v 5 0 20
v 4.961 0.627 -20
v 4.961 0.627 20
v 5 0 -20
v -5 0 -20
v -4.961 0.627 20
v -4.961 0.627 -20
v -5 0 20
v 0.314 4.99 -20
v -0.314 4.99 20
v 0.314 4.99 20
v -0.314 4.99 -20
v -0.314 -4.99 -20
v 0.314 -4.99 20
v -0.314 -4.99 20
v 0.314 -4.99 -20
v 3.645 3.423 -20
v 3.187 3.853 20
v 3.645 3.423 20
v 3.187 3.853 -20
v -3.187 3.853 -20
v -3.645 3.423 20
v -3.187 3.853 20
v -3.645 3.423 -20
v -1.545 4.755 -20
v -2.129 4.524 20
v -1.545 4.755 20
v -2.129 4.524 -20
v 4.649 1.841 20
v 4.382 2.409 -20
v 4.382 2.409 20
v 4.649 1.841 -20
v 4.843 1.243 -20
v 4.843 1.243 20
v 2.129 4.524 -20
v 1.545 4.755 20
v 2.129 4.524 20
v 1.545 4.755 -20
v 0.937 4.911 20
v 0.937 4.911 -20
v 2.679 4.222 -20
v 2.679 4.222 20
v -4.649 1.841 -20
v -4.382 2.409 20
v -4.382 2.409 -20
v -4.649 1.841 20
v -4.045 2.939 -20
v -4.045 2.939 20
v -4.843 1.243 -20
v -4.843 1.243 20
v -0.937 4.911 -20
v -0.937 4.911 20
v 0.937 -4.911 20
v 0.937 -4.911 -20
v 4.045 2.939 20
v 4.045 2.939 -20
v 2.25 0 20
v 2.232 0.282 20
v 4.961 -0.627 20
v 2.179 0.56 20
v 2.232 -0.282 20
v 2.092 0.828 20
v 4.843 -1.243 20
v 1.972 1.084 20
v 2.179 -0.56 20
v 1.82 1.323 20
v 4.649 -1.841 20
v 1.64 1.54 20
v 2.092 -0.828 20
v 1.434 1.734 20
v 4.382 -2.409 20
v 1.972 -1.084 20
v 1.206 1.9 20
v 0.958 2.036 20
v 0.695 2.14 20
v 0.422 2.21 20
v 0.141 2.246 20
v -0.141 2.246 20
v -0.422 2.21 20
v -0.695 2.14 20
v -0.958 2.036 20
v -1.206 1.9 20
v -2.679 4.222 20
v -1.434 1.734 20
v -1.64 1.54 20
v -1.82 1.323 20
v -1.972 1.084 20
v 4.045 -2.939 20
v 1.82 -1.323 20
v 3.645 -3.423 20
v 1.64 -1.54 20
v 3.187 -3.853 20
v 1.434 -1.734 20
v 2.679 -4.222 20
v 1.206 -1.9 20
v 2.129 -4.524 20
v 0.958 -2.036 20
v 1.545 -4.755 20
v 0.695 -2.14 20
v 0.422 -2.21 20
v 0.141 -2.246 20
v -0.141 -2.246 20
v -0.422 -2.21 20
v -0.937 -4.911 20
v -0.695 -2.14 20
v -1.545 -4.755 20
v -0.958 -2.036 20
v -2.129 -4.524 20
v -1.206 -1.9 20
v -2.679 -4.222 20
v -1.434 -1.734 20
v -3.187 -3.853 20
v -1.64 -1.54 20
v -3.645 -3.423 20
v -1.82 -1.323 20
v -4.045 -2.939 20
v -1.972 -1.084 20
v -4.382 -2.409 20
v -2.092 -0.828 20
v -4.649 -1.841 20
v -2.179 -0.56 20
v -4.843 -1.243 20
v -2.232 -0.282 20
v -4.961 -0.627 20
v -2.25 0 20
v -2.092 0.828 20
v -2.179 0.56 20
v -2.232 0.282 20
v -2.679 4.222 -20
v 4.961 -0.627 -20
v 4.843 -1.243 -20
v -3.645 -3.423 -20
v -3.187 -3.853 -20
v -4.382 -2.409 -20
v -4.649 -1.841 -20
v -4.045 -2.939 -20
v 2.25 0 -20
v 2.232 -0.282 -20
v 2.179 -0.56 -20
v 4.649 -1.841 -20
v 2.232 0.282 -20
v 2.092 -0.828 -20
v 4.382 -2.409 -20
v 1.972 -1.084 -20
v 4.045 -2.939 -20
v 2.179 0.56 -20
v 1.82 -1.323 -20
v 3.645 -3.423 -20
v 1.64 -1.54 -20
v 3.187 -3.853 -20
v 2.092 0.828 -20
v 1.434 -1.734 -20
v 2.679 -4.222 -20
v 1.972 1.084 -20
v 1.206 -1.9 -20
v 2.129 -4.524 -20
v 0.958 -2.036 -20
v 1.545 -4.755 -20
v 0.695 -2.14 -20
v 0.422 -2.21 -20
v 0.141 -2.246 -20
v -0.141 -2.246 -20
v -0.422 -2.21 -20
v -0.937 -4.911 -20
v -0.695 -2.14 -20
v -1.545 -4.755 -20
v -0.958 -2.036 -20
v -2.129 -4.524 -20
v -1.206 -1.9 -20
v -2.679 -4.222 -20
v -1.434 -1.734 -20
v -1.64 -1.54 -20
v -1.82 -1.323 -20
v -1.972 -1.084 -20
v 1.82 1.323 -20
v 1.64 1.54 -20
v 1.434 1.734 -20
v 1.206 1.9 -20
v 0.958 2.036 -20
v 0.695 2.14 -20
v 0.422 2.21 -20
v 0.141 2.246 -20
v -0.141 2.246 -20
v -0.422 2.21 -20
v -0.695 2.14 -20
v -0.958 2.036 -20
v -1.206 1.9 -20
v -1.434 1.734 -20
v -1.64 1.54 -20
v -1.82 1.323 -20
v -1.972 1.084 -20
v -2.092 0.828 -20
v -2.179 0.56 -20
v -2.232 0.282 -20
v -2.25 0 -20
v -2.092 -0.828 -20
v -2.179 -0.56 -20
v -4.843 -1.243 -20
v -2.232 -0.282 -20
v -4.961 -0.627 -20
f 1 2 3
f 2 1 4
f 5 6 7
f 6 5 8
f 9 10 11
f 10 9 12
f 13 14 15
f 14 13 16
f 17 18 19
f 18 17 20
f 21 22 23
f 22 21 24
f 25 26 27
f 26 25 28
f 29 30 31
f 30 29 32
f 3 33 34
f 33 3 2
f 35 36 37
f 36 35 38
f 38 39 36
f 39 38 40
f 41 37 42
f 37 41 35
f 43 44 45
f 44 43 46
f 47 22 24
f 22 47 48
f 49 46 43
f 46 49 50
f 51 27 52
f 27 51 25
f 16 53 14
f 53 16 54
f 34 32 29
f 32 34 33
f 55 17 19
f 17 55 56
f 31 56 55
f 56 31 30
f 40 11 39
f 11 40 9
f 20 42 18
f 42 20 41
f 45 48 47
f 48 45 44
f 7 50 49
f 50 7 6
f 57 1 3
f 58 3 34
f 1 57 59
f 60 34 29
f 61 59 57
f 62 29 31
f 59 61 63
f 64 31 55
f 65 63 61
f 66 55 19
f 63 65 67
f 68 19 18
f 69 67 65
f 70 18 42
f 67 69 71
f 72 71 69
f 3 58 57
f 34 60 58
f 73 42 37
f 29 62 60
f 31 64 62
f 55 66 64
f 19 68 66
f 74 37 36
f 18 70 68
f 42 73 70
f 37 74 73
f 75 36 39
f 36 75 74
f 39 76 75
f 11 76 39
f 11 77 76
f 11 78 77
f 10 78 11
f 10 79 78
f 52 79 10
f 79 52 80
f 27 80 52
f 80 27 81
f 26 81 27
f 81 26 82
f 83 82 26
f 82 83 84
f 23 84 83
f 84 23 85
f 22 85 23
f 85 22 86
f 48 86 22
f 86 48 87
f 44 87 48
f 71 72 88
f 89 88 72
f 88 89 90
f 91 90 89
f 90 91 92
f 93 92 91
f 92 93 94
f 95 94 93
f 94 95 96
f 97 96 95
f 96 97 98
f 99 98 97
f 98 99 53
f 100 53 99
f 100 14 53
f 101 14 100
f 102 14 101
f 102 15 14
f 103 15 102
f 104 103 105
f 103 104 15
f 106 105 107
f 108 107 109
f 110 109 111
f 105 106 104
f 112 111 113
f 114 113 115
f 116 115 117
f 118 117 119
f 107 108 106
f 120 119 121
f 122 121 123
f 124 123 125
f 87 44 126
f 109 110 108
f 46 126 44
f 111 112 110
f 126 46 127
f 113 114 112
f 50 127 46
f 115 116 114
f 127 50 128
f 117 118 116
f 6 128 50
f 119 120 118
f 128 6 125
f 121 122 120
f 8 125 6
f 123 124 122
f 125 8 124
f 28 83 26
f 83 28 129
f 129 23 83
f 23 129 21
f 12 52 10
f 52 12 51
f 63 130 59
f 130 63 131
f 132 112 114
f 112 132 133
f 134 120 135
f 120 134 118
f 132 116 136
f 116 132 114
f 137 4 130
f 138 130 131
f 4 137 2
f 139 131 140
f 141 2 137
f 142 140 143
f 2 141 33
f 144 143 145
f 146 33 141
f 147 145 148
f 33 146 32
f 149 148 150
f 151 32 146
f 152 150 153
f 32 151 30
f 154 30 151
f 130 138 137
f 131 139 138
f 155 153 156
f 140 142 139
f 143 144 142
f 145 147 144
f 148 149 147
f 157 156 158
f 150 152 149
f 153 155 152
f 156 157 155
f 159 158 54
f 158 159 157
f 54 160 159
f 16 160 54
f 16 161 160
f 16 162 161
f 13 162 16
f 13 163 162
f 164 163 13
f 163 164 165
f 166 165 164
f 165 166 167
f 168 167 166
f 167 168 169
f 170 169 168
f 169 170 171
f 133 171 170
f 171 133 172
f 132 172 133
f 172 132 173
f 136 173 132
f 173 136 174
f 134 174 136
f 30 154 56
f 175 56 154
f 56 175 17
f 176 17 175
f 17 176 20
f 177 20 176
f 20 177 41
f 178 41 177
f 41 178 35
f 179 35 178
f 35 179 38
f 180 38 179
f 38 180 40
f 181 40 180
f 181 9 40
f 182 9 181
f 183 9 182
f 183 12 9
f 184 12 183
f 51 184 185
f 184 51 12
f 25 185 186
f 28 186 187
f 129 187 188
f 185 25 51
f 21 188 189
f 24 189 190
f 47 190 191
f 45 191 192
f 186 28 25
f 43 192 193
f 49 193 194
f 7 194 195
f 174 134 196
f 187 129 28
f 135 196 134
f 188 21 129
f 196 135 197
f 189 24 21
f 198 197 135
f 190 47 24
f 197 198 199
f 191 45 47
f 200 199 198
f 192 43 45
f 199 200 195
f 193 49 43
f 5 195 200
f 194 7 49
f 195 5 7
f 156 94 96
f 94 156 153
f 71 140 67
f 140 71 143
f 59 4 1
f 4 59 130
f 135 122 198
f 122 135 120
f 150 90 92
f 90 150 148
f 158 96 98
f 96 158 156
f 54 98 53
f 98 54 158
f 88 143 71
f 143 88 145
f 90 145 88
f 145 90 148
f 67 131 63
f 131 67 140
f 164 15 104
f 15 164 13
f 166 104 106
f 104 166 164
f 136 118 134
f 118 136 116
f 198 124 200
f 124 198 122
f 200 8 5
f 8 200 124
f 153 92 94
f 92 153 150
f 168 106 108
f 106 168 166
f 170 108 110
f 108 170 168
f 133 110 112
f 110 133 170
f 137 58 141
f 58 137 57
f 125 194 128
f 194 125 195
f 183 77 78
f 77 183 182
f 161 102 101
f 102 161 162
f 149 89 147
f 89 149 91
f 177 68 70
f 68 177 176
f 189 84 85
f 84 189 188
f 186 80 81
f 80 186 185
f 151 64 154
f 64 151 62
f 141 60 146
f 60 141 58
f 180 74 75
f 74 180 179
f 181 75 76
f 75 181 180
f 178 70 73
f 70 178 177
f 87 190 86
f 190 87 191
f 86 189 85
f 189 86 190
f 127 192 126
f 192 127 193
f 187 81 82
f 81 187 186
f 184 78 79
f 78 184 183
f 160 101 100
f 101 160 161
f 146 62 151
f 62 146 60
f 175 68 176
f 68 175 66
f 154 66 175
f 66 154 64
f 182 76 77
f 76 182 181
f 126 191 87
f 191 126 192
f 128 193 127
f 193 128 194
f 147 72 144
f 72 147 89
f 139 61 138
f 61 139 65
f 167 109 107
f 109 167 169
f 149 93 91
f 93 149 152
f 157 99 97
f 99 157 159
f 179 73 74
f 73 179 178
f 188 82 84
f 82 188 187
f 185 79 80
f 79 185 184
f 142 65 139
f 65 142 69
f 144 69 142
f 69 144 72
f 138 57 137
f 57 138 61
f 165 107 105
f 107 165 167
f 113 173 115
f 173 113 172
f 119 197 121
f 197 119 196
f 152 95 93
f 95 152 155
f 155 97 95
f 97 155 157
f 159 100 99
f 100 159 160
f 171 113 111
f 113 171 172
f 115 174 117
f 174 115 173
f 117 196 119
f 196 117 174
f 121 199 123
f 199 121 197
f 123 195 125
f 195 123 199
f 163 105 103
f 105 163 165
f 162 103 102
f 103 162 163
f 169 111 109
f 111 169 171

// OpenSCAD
$fn = 50;


difference() {
	union() {
		translate(v = [0, 0, -20.0000000000]) {
			cylinder(h = 40, r = 5.0000000000);
		}
	}
	union() {
		translate(v = [0, 0, -100.0000000000]) {
			cylinder(h = 200, r = 2.2500000000);
		}
	}
}
